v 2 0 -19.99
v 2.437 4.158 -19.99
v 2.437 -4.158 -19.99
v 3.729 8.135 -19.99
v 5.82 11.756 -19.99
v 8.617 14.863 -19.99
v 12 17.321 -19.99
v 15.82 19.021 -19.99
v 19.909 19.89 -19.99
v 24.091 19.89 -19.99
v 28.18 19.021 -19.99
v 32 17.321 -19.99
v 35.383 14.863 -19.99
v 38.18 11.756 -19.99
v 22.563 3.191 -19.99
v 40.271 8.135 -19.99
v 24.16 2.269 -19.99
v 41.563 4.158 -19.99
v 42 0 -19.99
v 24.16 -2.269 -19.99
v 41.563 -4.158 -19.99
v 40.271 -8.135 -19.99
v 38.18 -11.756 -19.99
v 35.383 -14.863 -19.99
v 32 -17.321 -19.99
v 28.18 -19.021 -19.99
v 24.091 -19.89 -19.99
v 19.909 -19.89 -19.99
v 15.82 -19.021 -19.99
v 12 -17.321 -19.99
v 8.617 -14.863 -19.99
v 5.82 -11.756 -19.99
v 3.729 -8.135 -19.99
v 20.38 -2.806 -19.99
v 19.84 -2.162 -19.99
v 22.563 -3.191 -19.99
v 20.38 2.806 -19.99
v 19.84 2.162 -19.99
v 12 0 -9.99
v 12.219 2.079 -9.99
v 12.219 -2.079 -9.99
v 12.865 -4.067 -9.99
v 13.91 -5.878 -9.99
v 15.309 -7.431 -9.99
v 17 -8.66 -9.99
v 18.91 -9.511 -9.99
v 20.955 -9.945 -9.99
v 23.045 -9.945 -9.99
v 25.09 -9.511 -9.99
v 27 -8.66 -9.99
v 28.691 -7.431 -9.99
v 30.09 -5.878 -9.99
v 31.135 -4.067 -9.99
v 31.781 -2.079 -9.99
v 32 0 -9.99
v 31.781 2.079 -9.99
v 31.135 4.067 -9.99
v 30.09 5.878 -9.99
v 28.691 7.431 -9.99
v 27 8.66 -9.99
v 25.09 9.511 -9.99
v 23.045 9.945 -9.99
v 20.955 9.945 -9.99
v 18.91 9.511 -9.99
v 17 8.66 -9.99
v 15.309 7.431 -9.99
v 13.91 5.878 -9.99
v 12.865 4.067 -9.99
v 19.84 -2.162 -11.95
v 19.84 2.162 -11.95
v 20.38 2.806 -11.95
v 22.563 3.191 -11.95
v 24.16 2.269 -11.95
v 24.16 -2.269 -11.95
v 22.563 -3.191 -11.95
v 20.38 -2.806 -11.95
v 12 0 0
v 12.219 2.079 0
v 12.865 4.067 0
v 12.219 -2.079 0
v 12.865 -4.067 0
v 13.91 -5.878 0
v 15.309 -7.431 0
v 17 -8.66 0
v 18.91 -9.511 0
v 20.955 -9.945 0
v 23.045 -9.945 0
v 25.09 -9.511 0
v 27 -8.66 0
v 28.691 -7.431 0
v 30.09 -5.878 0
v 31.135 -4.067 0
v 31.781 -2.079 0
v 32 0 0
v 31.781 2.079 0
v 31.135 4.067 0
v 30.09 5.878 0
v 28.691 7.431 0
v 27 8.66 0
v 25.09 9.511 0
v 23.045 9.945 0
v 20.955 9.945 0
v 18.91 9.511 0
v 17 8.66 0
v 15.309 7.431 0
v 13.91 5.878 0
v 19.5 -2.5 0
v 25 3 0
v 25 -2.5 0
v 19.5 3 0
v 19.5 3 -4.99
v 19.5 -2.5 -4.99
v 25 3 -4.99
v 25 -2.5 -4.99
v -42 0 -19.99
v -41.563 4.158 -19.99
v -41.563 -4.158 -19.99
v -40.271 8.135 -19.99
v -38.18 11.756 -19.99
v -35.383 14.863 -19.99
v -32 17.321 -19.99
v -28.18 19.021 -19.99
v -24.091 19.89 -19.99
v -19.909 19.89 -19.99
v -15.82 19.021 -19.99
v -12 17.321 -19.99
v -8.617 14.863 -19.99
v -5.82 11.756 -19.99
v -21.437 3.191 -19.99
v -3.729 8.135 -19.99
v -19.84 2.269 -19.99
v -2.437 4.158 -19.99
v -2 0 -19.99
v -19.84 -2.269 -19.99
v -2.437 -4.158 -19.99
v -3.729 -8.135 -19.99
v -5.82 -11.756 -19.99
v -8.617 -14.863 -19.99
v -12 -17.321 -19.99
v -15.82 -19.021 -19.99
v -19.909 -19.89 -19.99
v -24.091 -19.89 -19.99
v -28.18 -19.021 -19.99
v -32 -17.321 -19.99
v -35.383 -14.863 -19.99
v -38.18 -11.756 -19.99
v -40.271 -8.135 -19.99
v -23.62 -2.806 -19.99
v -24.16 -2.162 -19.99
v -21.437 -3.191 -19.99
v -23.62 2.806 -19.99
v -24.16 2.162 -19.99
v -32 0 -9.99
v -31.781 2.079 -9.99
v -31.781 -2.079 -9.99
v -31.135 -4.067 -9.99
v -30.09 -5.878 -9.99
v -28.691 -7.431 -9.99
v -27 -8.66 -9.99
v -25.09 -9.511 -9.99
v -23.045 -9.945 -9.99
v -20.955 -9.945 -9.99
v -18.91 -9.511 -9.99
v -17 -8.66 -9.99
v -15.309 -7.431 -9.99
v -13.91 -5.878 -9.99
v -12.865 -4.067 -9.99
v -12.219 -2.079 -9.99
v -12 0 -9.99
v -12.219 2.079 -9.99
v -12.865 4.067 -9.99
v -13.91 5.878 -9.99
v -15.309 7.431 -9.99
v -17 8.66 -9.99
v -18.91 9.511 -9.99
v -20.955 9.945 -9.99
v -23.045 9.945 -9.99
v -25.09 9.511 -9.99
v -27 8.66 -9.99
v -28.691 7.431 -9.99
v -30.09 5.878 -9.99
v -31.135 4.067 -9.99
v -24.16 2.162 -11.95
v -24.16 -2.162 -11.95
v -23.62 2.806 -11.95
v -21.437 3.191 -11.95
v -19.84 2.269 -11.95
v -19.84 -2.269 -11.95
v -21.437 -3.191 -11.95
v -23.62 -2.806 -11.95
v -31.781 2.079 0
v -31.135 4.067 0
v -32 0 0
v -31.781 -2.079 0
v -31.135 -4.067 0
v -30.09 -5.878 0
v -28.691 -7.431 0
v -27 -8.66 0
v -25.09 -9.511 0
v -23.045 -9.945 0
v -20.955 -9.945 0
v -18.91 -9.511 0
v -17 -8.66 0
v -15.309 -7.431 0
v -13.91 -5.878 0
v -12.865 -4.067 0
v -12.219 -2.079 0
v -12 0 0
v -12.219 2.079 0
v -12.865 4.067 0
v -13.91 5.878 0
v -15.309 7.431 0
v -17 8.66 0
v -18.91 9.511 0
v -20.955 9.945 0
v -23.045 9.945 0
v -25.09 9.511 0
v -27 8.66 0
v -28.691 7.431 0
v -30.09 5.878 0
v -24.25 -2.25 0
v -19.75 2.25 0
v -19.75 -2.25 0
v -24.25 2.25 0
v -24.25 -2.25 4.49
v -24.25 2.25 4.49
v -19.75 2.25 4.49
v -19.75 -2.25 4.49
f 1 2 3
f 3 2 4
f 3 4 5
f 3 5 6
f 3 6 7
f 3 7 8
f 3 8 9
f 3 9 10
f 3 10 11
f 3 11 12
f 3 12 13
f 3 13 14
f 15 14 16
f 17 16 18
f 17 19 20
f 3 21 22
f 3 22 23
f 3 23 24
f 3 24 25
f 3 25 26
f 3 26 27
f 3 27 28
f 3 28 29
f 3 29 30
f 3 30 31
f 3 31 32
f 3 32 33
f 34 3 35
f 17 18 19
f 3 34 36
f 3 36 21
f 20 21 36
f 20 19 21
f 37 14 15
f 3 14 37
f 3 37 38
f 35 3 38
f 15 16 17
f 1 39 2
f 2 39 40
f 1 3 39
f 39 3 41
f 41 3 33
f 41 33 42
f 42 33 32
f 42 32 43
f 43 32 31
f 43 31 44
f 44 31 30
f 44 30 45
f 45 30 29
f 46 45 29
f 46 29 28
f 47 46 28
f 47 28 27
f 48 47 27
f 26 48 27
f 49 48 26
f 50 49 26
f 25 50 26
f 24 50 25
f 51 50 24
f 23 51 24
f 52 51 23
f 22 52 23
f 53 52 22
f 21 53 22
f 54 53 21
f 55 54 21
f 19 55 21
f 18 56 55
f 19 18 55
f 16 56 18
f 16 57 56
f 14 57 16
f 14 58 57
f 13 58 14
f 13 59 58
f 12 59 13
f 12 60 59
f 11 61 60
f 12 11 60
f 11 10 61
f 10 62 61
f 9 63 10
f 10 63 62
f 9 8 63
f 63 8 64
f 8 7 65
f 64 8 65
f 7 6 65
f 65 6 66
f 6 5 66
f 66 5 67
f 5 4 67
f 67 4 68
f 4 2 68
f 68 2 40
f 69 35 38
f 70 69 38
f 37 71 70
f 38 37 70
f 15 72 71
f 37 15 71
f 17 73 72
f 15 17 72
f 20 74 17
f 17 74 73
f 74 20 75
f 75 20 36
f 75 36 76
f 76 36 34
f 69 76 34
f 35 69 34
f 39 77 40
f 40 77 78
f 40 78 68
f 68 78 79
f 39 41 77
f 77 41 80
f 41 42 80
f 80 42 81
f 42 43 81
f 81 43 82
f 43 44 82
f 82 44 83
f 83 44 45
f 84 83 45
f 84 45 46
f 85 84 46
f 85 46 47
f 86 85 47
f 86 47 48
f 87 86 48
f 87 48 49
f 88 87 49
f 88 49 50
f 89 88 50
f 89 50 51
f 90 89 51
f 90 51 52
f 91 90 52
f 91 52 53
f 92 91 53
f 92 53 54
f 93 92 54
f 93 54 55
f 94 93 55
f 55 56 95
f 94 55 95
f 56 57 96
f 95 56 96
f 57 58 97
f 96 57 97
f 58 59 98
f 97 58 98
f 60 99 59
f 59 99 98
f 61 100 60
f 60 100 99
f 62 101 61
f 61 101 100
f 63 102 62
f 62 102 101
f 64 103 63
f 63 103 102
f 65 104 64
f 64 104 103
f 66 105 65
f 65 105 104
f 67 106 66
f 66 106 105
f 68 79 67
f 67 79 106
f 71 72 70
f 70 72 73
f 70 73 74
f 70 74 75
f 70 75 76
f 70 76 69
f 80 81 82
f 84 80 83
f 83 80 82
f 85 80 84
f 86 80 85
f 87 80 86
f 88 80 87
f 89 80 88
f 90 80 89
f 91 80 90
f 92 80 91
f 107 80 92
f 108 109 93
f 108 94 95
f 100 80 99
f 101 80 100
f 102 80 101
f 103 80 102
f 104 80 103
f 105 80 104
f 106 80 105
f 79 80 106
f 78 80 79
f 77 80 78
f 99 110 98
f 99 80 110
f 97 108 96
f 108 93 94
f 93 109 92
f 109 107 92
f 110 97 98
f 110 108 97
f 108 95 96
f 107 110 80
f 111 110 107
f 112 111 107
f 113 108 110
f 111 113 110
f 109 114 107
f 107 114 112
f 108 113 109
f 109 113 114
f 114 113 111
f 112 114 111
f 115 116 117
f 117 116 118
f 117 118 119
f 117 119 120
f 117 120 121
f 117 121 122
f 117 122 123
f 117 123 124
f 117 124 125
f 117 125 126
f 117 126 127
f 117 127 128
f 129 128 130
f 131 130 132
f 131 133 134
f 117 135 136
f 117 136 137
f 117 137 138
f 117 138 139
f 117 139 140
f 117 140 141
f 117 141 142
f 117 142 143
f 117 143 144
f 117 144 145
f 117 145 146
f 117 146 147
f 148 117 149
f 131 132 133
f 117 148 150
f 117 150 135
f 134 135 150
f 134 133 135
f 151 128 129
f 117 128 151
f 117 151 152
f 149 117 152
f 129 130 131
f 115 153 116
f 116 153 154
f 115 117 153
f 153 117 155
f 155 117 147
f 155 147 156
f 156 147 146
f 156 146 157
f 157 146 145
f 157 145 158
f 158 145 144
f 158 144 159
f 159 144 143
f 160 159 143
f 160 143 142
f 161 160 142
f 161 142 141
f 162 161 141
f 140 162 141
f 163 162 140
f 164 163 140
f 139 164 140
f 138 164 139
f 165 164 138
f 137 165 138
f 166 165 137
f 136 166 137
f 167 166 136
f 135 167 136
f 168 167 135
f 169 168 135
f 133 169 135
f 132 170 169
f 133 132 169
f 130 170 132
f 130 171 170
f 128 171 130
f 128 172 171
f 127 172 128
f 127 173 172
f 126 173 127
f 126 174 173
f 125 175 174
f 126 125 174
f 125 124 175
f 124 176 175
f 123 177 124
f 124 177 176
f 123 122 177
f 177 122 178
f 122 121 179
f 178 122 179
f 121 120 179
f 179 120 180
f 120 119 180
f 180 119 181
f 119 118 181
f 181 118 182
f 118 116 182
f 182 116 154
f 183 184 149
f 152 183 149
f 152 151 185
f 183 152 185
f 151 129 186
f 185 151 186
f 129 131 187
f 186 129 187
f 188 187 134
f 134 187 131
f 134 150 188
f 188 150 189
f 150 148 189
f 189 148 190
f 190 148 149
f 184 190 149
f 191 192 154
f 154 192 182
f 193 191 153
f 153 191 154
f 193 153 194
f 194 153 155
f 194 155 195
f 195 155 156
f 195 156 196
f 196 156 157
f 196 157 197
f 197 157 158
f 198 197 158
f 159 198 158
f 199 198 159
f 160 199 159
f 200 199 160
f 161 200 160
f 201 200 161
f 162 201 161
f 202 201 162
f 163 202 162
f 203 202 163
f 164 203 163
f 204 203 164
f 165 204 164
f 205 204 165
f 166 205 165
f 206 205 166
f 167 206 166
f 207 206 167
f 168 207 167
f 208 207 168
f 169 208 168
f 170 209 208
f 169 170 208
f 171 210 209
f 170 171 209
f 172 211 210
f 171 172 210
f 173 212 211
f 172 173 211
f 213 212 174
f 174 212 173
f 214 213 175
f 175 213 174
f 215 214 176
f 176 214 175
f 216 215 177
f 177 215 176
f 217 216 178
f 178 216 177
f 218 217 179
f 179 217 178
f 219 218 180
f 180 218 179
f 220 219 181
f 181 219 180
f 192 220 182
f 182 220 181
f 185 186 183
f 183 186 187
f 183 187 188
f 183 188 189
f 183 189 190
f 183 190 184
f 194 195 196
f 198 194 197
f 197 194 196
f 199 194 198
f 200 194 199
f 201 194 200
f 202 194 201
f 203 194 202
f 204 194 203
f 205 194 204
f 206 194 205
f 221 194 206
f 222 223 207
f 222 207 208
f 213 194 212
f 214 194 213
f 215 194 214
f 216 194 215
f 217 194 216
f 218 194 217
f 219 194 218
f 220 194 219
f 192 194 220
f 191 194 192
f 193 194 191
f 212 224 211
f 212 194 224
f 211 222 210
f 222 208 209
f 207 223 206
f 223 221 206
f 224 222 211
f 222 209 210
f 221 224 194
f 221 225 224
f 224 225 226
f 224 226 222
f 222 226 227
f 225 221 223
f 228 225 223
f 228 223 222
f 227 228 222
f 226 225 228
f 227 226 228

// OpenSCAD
module spool(r=10, h=20)
{
    end_h_div = 2;
    end_r_mult = 2;
    translate([0,0,h/2*-1])
    {
        difference()
        {
            union()
            {
                translate([0,0,h-0.01])
                {
                    cylinder(h=h/end_h_div, r1=r, r2=r*end_r_mult);
                }
                cylinder(h=h, r=r);
                translate([0,0,(h/end_h_div-0.01)*-1])
                {
                    cylinder(h=h/end_h_div, r2=r, r1=r*end_r_mult);
                }
            }
            translate([0,0,(h/end_h_div-0.01)*-1])
            {
                DPD20_axle_shape();
            }
            translate([0,0,h+(h/end_h_div-0.01)])
            {
                rotate([0,180,0])
                {
                    DPD20_axle_shape();
                }
            }
            /**
             * This might not be a good idea
             *
            translate([0,0,(h/4-0.01)*-1])
            {
                cylinder(h=h+h/2, r=r/2);
            }
            */
        }
    }
}

module DPD20_axle_shape()
{
    scale_factor = 1.2;
    scale([scale_factor,scale_factor,scale_factor])
    {
        difference()
        {
            translate([0,0,7.6-8.5])
            {
                cylinder(h=7.6, r=5.4/2);
            }
            translate([3.6/2,-3,-0.01])
            {
                cube([3,6,8]);
            }
            translate([(3.6/2+3)*-1,-3,-0.01])
            {
                cube([3,6,8]);
            }
        }
    }
}

//spool();
//DPD20_axle_shape();

module spool_pieces(r=10, h=20)
{
    translate([r*2.2,0,0])
    {
        difference()
        {
            spool(r,h);
            translate([-2*r,-2*r,0])
            {
                cube(r*4,r*4,h*1.1*-1);
            }
            translate([-1*r/4,-1*r/4,-h/4+0.01])
            {
                cube(r/2*1.1, r/2*1.1, h/4*1.1);
            }
        }
    }
    translate([r*-2.2,0,0])
    {
        union()
        {
            difference()
            {
                rotate([0,180,0])
                {
                    spool(r,h);
                }
                translate([-2*r,-2*r,0])
                {
                    cube(r*4,r*4,h*1.1*-1);
                }
            }
            translate([-1*r/4*0.9,-1*r/4*0.9,-0.01])
            {
                cube(r/2*0.9, r/2*0.9, h/4*0.9);
            }
        }
    }
}

spool_pieces();
//spool();
